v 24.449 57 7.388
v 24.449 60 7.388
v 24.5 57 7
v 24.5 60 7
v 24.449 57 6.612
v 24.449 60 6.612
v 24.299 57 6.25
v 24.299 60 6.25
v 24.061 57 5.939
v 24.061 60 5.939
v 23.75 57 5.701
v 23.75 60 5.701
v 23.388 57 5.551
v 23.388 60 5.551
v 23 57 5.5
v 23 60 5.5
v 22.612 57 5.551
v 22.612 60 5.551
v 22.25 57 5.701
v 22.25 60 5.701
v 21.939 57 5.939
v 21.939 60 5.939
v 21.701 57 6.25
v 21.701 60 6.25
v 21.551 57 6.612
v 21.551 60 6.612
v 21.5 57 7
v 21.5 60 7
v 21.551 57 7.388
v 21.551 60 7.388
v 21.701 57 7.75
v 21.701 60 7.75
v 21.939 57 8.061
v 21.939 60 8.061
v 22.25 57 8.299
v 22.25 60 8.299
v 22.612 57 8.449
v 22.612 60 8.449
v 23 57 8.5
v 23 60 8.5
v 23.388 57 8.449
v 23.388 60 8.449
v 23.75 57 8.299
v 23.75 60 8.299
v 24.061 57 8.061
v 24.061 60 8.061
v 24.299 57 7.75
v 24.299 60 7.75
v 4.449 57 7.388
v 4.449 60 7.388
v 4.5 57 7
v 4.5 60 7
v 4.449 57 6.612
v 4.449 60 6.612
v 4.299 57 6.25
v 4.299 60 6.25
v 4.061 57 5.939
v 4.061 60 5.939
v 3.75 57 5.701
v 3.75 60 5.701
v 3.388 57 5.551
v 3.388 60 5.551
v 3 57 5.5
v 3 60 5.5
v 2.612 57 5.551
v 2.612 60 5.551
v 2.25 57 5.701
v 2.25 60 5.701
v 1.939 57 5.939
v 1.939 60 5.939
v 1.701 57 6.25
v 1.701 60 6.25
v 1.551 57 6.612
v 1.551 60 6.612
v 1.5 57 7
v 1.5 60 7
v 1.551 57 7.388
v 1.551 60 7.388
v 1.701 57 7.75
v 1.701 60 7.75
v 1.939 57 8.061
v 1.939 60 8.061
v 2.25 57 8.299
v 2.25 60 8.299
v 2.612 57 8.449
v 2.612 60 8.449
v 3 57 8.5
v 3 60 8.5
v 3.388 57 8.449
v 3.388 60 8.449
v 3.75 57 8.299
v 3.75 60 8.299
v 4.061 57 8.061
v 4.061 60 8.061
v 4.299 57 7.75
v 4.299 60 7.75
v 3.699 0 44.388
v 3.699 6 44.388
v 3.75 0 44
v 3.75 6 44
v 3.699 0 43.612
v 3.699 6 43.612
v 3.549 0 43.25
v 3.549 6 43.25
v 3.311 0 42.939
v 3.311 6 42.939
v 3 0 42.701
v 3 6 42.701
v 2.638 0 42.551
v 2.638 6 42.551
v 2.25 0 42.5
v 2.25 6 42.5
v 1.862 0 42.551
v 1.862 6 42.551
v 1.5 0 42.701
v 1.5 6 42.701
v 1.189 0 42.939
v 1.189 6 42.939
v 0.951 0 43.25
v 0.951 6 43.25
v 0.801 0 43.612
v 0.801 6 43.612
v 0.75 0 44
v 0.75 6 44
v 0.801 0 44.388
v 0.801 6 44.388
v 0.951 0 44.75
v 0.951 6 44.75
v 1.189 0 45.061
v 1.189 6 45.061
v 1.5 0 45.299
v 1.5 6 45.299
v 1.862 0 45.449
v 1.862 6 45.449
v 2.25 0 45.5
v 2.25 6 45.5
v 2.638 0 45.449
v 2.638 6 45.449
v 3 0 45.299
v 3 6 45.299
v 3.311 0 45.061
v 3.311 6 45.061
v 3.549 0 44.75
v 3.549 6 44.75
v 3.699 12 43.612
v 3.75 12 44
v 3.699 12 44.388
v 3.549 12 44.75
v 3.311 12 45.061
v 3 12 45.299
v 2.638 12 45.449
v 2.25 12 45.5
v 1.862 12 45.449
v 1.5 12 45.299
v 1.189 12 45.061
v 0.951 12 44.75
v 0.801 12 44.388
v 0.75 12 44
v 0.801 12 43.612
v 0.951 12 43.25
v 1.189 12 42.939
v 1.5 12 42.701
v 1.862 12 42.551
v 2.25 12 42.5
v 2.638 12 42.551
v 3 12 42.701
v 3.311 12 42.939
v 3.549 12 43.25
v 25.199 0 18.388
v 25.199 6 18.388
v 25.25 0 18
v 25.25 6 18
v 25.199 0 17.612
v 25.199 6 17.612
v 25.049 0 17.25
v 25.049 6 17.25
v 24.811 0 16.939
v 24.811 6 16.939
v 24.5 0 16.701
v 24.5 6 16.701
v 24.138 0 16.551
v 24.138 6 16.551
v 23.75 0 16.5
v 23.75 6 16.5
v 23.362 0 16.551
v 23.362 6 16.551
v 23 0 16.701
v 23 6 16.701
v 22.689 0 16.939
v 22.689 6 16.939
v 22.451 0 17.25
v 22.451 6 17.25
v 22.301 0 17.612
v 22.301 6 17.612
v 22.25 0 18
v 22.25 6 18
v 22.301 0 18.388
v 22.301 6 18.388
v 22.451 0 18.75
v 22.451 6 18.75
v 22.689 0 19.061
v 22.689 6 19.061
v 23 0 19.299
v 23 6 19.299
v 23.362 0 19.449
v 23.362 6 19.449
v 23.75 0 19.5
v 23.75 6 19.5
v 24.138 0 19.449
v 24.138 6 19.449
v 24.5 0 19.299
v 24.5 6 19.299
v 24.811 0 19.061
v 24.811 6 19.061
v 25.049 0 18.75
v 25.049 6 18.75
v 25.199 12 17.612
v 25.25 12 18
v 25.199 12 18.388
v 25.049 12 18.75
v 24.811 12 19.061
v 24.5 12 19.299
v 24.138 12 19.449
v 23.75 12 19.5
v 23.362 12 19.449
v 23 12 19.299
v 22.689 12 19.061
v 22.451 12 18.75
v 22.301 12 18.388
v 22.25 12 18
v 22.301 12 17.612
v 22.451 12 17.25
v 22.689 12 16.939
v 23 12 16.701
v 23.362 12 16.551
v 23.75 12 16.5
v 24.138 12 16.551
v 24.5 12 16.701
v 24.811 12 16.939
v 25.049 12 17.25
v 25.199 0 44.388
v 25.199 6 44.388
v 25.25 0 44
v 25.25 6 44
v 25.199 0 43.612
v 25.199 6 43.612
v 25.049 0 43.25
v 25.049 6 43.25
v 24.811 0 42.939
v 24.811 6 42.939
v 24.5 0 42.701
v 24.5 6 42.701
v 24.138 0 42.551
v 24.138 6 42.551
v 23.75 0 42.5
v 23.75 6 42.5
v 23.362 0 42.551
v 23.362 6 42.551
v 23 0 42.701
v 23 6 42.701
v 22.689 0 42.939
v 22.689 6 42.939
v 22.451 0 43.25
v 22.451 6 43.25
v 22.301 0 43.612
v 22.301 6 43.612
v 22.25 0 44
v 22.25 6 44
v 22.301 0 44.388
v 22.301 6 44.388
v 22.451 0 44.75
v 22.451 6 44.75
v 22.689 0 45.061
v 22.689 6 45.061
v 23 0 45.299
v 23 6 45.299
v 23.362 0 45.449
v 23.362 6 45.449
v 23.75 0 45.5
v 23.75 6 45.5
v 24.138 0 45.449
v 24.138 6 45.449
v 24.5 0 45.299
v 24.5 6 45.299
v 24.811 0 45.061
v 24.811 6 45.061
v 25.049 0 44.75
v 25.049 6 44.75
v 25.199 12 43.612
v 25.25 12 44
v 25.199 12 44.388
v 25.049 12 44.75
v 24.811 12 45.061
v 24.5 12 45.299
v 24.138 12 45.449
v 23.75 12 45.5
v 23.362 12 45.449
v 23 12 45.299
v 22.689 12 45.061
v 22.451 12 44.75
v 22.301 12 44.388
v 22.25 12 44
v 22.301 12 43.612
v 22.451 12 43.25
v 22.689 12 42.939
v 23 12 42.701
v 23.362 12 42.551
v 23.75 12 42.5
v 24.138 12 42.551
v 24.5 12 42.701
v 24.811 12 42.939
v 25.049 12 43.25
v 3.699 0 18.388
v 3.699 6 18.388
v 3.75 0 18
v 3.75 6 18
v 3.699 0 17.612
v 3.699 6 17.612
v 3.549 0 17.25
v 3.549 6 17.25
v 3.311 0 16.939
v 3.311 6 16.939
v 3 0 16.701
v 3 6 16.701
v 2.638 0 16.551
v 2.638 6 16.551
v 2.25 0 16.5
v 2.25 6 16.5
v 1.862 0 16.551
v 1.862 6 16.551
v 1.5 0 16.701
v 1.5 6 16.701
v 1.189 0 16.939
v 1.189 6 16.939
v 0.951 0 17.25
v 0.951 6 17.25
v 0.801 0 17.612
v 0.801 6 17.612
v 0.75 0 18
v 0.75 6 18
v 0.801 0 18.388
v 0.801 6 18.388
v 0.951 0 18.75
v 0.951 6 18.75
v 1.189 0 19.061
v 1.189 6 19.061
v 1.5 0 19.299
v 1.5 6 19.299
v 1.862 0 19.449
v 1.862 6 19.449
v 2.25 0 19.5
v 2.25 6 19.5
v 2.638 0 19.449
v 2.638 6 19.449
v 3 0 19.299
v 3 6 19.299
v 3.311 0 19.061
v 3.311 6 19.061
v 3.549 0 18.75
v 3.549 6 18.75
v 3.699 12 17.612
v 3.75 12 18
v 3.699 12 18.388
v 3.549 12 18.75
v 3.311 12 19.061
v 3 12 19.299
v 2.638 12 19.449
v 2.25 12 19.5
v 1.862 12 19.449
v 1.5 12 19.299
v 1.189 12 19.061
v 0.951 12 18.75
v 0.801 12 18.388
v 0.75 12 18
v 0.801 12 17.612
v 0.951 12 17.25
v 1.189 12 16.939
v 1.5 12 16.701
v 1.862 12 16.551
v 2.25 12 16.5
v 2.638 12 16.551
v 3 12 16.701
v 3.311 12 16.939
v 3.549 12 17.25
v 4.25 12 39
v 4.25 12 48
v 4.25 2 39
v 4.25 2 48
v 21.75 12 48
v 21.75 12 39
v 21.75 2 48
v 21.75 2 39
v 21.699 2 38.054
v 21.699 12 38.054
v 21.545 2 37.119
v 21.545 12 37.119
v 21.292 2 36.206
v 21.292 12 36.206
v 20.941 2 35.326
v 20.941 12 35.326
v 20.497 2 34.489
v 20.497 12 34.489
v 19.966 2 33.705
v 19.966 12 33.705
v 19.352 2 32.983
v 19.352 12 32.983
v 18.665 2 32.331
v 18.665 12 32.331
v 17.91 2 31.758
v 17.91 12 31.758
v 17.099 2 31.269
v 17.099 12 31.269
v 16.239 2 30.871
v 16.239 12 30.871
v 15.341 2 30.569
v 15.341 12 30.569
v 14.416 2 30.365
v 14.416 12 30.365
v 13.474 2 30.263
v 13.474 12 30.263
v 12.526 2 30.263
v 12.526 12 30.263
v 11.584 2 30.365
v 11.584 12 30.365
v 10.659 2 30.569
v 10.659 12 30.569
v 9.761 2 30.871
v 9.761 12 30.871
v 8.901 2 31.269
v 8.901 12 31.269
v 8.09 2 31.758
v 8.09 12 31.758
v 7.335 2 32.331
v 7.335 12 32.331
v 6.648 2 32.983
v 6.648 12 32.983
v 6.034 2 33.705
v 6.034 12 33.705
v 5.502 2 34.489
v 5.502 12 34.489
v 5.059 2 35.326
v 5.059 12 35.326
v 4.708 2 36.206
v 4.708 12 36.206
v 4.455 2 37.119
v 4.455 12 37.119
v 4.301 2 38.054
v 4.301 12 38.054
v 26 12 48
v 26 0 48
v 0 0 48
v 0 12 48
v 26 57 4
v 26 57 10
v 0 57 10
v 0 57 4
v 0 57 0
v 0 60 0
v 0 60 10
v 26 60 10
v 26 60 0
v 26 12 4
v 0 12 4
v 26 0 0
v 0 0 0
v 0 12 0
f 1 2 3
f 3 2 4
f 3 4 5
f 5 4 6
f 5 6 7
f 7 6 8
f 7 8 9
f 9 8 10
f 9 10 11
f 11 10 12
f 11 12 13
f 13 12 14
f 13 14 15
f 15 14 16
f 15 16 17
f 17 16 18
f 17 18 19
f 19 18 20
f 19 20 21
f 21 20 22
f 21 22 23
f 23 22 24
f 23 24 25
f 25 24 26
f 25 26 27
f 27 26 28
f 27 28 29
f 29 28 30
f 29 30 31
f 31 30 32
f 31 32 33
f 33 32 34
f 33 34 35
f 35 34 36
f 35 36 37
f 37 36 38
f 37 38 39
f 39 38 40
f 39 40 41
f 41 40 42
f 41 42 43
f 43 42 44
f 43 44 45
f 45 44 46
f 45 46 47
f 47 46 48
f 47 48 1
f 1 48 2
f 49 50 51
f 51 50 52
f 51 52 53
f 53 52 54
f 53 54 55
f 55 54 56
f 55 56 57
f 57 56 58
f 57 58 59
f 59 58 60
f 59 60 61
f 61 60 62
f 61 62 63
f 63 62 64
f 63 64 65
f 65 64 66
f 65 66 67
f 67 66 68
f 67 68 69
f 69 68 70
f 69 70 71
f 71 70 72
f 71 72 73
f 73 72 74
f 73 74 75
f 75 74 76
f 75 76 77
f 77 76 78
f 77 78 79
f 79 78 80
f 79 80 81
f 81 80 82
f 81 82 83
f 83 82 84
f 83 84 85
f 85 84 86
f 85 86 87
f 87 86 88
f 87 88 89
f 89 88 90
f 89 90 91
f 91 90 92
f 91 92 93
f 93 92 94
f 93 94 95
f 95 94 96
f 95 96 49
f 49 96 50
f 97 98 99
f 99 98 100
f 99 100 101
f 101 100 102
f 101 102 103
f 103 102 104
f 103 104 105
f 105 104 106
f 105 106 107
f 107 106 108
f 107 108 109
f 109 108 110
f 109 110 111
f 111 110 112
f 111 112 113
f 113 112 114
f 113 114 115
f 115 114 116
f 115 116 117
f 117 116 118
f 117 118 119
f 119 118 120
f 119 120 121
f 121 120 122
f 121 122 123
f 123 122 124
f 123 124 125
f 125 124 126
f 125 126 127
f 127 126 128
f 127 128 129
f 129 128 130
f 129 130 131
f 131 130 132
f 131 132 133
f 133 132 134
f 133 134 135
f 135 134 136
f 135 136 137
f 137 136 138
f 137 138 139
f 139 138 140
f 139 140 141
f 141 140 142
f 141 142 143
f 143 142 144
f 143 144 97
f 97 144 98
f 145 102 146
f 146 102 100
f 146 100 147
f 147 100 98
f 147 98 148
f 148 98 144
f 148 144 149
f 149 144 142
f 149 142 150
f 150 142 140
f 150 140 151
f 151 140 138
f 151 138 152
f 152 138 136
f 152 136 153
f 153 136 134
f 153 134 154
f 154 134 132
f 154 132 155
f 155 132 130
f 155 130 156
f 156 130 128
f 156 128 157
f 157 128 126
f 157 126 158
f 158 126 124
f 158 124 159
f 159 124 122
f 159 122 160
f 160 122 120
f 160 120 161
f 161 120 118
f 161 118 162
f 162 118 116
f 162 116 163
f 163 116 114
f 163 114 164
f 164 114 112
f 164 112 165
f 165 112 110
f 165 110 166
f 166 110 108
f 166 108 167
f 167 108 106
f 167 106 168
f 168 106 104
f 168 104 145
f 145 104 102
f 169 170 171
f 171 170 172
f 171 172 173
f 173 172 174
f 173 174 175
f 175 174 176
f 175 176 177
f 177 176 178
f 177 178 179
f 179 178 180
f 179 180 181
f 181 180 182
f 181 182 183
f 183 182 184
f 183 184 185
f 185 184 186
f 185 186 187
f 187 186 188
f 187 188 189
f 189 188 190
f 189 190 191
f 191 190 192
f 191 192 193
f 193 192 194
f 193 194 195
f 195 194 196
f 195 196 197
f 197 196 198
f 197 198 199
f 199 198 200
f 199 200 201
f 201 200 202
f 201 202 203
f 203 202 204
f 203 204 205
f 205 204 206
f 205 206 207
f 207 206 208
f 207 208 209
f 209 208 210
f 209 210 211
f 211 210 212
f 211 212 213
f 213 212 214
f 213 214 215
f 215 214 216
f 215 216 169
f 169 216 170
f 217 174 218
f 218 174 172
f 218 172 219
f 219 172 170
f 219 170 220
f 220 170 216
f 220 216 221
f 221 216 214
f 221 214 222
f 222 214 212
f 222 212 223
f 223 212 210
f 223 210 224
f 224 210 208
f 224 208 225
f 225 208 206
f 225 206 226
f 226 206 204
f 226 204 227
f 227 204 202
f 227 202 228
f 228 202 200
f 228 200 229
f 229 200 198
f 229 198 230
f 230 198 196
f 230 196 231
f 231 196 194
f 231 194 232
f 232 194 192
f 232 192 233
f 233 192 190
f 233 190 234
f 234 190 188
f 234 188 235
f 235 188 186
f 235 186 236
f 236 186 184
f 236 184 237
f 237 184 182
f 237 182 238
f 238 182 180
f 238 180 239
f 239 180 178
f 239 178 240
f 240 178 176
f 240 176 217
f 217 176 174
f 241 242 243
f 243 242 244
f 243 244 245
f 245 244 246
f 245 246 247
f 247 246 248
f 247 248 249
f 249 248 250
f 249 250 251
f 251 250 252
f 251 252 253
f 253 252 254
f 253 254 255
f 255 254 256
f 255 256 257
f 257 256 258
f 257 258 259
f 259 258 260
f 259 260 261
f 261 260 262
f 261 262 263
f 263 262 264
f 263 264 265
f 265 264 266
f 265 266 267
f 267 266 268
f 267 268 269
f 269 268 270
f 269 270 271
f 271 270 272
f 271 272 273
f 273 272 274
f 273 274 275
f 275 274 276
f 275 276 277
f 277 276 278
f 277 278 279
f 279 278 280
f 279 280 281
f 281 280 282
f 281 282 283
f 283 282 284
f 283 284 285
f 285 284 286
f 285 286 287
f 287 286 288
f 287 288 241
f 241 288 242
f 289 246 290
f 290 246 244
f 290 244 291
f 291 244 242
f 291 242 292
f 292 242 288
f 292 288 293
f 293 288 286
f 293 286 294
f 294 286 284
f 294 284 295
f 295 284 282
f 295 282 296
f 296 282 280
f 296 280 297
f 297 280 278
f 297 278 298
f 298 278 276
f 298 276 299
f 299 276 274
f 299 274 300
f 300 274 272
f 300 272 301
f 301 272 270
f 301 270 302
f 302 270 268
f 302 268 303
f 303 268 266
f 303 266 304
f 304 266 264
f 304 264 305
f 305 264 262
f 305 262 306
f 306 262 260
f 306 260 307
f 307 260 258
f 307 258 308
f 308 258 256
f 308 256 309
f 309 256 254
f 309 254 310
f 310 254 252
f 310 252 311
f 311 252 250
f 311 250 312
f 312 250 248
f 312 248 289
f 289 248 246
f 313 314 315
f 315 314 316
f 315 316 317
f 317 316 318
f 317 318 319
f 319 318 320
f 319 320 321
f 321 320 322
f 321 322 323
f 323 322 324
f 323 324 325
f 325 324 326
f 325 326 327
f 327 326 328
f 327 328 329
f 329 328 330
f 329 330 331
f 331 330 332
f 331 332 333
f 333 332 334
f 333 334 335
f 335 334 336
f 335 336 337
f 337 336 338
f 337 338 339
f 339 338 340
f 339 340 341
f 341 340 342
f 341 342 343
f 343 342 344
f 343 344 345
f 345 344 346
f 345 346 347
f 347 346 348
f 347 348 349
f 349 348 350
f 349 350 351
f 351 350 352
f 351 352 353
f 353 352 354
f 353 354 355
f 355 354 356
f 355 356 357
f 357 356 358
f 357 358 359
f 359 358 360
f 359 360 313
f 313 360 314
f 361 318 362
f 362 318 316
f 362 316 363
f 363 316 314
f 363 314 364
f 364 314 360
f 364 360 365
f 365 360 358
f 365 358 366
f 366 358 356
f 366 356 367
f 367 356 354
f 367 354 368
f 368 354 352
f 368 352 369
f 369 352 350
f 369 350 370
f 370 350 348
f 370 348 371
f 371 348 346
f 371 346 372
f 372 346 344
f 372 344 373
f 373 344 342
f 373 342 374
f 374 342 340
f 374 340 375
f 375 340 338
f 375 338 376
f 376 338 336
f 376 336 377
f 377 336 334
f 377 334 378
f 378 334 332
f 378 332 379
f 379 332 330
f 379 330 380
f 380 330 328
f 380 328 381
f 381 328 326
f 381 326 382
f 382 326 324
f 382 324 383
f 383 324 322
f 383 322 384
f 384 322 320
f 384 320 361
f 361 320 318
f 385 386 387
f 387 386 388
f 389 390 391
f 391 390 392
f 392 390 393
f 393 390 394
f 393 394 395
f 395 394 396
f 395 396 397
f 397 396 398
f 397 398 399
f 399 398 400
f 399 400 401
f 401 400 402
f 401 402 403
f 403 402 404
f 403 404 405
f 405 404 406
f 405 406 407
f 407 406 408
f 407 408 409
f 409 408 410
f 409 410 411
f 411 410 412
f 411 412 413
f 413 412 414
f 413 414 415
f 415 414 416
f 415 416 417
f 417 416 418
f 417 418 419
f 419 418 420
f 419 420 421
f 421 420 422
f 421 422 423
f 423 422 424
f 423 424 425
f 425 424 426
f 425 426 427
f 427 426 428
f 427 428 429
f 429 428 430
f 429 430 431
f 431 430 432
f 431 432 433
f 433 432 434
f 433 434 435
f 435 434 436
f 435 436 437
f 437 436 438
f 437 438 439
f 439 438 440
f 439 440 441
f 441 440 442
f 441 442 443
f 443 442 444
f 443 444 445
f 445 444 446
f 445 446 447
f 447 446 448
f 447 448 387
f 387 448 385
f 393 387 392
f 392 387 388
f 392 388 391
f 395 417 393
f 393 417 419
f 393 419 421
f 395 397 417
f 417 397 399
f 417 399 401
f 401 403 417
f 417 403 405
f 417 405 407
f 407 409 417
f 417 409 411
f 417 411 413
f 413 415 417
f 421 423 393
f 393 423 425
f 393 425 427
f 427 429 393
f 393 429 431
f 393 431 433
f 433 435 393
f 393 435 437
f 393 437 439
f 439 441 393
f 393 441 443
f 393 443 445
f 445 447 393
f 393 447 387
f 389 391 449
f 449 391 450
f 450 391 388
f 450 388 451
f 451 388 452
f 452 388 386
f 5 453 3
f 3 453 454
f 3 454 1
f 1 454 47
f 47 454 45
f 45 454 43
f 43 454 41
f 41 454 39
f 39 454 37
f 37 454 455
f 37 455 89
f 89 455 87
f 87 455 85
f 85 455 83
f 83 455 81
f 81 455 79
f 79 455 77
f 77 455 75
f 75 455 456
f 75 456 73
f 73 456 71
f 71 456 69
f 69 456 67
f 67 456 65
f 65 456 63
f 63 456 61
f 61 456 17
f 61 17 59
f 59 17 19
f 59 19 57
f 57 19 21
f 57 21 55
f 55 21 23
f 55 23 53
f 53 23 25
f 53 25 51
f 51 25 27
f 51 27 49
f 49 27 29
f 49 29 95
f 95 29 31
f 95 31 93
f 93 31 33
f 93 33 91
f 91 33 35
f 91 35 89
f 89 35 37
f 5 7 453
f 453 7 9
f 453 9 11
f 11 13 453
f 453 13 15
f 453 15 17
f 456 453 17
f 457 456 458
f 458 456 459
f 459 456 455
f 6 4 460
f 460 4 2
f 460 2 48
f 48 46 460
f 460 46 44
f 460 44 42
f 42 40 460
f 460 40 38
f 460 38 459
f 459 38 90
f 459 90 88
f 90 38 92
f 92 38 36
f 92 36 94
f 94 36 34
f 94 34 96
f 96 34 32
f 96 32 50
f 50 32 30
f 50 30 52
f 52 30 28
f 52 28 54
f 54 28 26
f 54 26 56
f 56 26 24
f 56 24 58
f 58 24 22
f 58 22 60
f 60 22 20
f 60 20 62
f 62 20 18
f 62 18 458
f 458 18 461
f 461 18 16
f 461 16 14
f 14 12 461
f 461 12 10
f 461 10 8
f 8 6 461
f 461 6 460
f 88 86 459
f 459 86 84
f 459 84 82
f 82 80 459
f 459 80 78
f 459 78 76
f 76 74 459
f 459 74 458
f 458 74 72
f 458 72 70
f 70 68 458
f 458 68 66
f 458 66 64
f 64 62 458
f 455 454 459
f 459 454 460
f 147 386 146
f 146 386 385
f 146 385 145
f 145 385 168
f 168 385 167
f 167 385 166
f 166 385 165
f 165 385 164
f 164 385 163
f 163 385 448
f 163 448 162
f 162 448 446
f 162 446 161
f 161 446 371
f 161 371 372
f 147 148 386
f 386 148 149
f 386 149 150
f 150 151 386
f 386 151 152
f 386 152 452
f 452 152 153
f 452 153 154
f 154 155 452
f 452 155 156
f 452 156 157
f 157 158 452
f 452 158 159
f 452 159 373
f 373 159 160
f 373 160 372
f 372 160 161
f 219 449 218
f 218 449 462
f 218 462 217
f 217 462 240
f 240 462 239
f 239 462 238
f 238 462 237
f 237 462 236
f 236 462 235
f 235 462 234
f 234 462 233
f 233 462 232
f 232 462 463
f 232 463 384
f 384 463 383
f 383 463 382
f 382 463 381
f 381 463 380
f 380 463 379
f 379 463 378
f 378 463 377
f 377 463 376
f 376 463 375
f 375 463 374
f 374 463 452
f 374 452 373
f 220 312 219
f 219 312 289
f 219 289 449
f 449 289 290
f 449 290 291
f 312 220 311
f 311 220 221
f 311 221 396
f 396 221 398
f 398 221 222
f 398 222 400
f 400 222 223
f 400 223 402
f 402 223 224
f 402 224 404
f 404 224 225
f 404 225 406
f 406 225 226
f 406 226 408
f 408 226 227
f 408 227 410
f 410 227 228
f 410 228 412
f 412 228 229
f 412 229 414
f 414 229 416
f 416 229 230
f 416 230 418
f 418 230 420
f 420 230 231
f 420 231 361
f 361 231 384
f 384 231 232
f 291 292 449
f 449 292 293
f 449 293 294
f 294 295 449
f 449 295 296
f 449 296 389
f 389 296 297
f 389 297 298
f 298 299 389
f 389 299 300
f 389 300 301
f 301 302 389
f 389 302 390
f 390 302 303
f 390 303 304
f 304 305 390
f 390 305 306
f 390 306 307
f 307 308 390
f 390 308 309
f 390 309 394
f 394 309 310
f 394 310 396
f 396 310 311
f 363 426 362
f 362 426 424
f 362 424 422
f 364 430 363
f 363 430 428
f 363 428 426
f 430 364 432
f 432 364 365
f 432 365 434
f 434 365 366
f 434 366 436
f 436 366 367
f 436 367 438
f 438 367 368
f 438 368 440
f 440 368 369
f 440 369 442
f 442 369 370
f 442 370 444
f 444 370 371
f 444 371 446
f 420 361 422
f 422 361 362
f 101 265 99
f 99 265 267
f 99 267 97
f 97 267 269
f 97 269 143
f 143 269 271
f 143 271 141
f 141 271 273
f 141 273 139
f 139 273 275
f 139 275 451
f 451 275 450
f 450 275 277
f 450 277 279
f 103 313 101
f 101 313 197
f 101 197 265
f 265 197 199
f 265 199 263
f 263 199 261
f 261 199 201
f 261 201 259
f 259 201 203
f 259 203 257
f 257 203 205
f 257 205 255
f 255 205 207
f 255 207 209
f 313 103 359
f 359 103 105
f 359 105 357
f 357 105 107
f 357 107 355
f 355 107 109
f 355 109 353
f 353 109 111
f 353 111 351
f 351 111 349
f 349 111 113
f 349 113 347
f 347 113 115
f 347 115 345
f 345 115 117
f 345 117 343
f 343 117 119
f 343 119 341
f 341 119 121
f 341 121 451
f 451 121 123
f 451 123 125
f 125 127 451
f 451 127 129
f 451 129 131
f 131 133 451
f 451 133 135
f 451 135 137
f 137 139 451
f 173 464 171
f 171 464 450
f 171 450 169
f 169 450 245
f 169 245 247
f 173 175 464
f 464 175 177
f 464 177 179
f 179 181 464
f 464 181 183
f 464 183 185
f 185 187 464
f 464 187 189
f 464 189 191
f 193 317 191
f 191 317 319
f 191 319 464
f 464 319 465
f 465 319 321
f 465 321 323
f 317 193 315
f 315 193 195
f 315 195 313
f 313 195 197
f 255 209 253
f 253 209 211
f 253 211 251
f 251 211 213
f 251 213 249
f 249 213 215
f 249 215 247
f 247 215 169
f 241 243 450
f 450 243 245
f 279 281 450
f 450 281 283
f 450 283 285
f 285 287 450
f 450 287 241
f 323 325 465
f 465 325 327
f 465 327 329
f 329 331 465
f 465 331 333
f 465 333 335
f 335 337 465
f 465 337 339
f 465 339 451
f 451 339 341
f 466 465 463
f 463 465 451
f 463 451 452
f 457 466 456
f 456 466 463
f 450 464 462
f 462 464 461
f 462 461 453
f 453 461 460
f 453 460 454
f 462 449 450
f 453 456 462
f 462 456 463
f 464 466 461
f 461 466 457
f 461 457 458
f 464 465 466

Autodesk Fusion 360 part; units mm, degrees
sketch "Sketch1" plane through (0, 0, 0) normal (0, 0, 1) x (1, 0, 0)
  line L0 (0, 0) -> (26, 0)
  line L1 (26, 0) -> (26, 60)
  line L2 (26, 60) -> (0, 60)
  line L3 (0, 60) -> (0, 0)
  line L4 (0, 0) -> (26, 0)
  line L5 (26, 0) -> (26, 12)
  line L6 (26, 12) -> (0, 12)
  line L7 (0, 12) -> (0, 0)
  line L8 (0, 60) -> (26, 60)
  line L9 (26, 60) -> (26, 57)
  line L10 (26, 57) -> (0, 57)
  line L11 (0, 57) -> (0, 60)
  dimension "d1" = 26
  dimension "d2" = 60
  dimension "d16" = 48
  dimension "d43" = 3
extrude "Extrude1" add sketch "Sketch1" along normal blind 4 contours L1 L3 L6 L10
extrude "Extrude2" add sketch "Sketch1" along normal blind 48 contours L0 L1 L3 L4 L5 L6 L7
extrude "Extrude6" add sketch "Sketch1" along normal blind 10 contours L1 L2 L3 L8 L9 L10 L11
sketch "Sketch2" plane through (0, 12, 0) normal (0, 1, 0) x (-1, 0, 0)
  line L0 (-26, 4) -> (0, 4)
  line L1 (0, 4) -> (0, 48)
  line L2 (0, 48) -> (-26, 48)
  line L3 (-26, 48) -> (-26, 4)
  circle A0 centre (-13, 39) radius 8.75
  line L4 (-21.75, 39) -> (-21.75, 48)
  line L5 (-4.25, 39) -> (-4.25, 48)
  dimension "d17" = 17.5
  dimension "d27" = 13
  dimension "d28" = 4.25
  dimension "d46" = 35
extrude "Extrude3" cut sketch "Sketch2" against normal blind 10 contours L2 A0 L4 L5 | A0
sketch "Sketch3" plane through (0, 12, 0) normal (0, 1, 0) x (-1, 0, 0)
  line L0 (-26, 4) -> (0, 4)
  line L1 (0, 4) -> (0, 48)
  line L2 (-21.75, 48) -> (-26, 48)
  line L3 (-26, 48) -> (-26, 4)
  line L4 (-21.75, 39) -> (-21.75, 48)
  line L5 (0, 48) -> (-4.25, 48)
  line L6 (-4.25, 48) -> (-4.25, 39)
  arc A0 (-21.75, 39) -> (-4.25, 39) centre (-13, 39) ccw
  circle A1 centre (-23.75, 44) radius 1.5
  circle A2 centre (-2.25, 44) radius 1.5
  circle A3 centre (-23.75, 18) radius 1.5
  circle A4 centre (-2.25, 18) radius 1.5
  dimension "d29" = 3
  dimension "d30" = 2.25
  dimension "d31" = 3
  dimension "d32" = 2.25
  dimension "d33" = 3
  dimension "d34" = 3
  dimension "d35" = 2.25
  dimension "d36" = 2.25
  dimension "d37" = 4
  dimension "d38" = 4
  dimension "d57" = 30
  dimension "d58" = 30
extrude "Extrude5" cut sketch "Sketch3" against normal blind 13 contours A1 | A2 | A3 | A4
sketch "Sketch4" plane through (0, 60, 0) normal (0, 1, 0) x (-1, 0, 0)
  line L0 (-26, 0) -> (0, 0)
  line L1 (0, 0) -> (0, 10)
  line L2 (0, 10) -> (-26, 10)
  line L3 (-26, 10) -> (-26, 0)
  circle A0 centre (-3, 7) radius 1.5
  circle A1 centre (-23, 7) radius 1.5
  dimension "d49" = 3
  dimension "d50" = 3
  dimension "d51" = 3
  dimension "d52" = 3
  dimension "d53" = 3
  dimension "d54" = 3
extrude "Extrude7" cut sketch "Sketch4" against normal blind 4 contours A0 | A1
